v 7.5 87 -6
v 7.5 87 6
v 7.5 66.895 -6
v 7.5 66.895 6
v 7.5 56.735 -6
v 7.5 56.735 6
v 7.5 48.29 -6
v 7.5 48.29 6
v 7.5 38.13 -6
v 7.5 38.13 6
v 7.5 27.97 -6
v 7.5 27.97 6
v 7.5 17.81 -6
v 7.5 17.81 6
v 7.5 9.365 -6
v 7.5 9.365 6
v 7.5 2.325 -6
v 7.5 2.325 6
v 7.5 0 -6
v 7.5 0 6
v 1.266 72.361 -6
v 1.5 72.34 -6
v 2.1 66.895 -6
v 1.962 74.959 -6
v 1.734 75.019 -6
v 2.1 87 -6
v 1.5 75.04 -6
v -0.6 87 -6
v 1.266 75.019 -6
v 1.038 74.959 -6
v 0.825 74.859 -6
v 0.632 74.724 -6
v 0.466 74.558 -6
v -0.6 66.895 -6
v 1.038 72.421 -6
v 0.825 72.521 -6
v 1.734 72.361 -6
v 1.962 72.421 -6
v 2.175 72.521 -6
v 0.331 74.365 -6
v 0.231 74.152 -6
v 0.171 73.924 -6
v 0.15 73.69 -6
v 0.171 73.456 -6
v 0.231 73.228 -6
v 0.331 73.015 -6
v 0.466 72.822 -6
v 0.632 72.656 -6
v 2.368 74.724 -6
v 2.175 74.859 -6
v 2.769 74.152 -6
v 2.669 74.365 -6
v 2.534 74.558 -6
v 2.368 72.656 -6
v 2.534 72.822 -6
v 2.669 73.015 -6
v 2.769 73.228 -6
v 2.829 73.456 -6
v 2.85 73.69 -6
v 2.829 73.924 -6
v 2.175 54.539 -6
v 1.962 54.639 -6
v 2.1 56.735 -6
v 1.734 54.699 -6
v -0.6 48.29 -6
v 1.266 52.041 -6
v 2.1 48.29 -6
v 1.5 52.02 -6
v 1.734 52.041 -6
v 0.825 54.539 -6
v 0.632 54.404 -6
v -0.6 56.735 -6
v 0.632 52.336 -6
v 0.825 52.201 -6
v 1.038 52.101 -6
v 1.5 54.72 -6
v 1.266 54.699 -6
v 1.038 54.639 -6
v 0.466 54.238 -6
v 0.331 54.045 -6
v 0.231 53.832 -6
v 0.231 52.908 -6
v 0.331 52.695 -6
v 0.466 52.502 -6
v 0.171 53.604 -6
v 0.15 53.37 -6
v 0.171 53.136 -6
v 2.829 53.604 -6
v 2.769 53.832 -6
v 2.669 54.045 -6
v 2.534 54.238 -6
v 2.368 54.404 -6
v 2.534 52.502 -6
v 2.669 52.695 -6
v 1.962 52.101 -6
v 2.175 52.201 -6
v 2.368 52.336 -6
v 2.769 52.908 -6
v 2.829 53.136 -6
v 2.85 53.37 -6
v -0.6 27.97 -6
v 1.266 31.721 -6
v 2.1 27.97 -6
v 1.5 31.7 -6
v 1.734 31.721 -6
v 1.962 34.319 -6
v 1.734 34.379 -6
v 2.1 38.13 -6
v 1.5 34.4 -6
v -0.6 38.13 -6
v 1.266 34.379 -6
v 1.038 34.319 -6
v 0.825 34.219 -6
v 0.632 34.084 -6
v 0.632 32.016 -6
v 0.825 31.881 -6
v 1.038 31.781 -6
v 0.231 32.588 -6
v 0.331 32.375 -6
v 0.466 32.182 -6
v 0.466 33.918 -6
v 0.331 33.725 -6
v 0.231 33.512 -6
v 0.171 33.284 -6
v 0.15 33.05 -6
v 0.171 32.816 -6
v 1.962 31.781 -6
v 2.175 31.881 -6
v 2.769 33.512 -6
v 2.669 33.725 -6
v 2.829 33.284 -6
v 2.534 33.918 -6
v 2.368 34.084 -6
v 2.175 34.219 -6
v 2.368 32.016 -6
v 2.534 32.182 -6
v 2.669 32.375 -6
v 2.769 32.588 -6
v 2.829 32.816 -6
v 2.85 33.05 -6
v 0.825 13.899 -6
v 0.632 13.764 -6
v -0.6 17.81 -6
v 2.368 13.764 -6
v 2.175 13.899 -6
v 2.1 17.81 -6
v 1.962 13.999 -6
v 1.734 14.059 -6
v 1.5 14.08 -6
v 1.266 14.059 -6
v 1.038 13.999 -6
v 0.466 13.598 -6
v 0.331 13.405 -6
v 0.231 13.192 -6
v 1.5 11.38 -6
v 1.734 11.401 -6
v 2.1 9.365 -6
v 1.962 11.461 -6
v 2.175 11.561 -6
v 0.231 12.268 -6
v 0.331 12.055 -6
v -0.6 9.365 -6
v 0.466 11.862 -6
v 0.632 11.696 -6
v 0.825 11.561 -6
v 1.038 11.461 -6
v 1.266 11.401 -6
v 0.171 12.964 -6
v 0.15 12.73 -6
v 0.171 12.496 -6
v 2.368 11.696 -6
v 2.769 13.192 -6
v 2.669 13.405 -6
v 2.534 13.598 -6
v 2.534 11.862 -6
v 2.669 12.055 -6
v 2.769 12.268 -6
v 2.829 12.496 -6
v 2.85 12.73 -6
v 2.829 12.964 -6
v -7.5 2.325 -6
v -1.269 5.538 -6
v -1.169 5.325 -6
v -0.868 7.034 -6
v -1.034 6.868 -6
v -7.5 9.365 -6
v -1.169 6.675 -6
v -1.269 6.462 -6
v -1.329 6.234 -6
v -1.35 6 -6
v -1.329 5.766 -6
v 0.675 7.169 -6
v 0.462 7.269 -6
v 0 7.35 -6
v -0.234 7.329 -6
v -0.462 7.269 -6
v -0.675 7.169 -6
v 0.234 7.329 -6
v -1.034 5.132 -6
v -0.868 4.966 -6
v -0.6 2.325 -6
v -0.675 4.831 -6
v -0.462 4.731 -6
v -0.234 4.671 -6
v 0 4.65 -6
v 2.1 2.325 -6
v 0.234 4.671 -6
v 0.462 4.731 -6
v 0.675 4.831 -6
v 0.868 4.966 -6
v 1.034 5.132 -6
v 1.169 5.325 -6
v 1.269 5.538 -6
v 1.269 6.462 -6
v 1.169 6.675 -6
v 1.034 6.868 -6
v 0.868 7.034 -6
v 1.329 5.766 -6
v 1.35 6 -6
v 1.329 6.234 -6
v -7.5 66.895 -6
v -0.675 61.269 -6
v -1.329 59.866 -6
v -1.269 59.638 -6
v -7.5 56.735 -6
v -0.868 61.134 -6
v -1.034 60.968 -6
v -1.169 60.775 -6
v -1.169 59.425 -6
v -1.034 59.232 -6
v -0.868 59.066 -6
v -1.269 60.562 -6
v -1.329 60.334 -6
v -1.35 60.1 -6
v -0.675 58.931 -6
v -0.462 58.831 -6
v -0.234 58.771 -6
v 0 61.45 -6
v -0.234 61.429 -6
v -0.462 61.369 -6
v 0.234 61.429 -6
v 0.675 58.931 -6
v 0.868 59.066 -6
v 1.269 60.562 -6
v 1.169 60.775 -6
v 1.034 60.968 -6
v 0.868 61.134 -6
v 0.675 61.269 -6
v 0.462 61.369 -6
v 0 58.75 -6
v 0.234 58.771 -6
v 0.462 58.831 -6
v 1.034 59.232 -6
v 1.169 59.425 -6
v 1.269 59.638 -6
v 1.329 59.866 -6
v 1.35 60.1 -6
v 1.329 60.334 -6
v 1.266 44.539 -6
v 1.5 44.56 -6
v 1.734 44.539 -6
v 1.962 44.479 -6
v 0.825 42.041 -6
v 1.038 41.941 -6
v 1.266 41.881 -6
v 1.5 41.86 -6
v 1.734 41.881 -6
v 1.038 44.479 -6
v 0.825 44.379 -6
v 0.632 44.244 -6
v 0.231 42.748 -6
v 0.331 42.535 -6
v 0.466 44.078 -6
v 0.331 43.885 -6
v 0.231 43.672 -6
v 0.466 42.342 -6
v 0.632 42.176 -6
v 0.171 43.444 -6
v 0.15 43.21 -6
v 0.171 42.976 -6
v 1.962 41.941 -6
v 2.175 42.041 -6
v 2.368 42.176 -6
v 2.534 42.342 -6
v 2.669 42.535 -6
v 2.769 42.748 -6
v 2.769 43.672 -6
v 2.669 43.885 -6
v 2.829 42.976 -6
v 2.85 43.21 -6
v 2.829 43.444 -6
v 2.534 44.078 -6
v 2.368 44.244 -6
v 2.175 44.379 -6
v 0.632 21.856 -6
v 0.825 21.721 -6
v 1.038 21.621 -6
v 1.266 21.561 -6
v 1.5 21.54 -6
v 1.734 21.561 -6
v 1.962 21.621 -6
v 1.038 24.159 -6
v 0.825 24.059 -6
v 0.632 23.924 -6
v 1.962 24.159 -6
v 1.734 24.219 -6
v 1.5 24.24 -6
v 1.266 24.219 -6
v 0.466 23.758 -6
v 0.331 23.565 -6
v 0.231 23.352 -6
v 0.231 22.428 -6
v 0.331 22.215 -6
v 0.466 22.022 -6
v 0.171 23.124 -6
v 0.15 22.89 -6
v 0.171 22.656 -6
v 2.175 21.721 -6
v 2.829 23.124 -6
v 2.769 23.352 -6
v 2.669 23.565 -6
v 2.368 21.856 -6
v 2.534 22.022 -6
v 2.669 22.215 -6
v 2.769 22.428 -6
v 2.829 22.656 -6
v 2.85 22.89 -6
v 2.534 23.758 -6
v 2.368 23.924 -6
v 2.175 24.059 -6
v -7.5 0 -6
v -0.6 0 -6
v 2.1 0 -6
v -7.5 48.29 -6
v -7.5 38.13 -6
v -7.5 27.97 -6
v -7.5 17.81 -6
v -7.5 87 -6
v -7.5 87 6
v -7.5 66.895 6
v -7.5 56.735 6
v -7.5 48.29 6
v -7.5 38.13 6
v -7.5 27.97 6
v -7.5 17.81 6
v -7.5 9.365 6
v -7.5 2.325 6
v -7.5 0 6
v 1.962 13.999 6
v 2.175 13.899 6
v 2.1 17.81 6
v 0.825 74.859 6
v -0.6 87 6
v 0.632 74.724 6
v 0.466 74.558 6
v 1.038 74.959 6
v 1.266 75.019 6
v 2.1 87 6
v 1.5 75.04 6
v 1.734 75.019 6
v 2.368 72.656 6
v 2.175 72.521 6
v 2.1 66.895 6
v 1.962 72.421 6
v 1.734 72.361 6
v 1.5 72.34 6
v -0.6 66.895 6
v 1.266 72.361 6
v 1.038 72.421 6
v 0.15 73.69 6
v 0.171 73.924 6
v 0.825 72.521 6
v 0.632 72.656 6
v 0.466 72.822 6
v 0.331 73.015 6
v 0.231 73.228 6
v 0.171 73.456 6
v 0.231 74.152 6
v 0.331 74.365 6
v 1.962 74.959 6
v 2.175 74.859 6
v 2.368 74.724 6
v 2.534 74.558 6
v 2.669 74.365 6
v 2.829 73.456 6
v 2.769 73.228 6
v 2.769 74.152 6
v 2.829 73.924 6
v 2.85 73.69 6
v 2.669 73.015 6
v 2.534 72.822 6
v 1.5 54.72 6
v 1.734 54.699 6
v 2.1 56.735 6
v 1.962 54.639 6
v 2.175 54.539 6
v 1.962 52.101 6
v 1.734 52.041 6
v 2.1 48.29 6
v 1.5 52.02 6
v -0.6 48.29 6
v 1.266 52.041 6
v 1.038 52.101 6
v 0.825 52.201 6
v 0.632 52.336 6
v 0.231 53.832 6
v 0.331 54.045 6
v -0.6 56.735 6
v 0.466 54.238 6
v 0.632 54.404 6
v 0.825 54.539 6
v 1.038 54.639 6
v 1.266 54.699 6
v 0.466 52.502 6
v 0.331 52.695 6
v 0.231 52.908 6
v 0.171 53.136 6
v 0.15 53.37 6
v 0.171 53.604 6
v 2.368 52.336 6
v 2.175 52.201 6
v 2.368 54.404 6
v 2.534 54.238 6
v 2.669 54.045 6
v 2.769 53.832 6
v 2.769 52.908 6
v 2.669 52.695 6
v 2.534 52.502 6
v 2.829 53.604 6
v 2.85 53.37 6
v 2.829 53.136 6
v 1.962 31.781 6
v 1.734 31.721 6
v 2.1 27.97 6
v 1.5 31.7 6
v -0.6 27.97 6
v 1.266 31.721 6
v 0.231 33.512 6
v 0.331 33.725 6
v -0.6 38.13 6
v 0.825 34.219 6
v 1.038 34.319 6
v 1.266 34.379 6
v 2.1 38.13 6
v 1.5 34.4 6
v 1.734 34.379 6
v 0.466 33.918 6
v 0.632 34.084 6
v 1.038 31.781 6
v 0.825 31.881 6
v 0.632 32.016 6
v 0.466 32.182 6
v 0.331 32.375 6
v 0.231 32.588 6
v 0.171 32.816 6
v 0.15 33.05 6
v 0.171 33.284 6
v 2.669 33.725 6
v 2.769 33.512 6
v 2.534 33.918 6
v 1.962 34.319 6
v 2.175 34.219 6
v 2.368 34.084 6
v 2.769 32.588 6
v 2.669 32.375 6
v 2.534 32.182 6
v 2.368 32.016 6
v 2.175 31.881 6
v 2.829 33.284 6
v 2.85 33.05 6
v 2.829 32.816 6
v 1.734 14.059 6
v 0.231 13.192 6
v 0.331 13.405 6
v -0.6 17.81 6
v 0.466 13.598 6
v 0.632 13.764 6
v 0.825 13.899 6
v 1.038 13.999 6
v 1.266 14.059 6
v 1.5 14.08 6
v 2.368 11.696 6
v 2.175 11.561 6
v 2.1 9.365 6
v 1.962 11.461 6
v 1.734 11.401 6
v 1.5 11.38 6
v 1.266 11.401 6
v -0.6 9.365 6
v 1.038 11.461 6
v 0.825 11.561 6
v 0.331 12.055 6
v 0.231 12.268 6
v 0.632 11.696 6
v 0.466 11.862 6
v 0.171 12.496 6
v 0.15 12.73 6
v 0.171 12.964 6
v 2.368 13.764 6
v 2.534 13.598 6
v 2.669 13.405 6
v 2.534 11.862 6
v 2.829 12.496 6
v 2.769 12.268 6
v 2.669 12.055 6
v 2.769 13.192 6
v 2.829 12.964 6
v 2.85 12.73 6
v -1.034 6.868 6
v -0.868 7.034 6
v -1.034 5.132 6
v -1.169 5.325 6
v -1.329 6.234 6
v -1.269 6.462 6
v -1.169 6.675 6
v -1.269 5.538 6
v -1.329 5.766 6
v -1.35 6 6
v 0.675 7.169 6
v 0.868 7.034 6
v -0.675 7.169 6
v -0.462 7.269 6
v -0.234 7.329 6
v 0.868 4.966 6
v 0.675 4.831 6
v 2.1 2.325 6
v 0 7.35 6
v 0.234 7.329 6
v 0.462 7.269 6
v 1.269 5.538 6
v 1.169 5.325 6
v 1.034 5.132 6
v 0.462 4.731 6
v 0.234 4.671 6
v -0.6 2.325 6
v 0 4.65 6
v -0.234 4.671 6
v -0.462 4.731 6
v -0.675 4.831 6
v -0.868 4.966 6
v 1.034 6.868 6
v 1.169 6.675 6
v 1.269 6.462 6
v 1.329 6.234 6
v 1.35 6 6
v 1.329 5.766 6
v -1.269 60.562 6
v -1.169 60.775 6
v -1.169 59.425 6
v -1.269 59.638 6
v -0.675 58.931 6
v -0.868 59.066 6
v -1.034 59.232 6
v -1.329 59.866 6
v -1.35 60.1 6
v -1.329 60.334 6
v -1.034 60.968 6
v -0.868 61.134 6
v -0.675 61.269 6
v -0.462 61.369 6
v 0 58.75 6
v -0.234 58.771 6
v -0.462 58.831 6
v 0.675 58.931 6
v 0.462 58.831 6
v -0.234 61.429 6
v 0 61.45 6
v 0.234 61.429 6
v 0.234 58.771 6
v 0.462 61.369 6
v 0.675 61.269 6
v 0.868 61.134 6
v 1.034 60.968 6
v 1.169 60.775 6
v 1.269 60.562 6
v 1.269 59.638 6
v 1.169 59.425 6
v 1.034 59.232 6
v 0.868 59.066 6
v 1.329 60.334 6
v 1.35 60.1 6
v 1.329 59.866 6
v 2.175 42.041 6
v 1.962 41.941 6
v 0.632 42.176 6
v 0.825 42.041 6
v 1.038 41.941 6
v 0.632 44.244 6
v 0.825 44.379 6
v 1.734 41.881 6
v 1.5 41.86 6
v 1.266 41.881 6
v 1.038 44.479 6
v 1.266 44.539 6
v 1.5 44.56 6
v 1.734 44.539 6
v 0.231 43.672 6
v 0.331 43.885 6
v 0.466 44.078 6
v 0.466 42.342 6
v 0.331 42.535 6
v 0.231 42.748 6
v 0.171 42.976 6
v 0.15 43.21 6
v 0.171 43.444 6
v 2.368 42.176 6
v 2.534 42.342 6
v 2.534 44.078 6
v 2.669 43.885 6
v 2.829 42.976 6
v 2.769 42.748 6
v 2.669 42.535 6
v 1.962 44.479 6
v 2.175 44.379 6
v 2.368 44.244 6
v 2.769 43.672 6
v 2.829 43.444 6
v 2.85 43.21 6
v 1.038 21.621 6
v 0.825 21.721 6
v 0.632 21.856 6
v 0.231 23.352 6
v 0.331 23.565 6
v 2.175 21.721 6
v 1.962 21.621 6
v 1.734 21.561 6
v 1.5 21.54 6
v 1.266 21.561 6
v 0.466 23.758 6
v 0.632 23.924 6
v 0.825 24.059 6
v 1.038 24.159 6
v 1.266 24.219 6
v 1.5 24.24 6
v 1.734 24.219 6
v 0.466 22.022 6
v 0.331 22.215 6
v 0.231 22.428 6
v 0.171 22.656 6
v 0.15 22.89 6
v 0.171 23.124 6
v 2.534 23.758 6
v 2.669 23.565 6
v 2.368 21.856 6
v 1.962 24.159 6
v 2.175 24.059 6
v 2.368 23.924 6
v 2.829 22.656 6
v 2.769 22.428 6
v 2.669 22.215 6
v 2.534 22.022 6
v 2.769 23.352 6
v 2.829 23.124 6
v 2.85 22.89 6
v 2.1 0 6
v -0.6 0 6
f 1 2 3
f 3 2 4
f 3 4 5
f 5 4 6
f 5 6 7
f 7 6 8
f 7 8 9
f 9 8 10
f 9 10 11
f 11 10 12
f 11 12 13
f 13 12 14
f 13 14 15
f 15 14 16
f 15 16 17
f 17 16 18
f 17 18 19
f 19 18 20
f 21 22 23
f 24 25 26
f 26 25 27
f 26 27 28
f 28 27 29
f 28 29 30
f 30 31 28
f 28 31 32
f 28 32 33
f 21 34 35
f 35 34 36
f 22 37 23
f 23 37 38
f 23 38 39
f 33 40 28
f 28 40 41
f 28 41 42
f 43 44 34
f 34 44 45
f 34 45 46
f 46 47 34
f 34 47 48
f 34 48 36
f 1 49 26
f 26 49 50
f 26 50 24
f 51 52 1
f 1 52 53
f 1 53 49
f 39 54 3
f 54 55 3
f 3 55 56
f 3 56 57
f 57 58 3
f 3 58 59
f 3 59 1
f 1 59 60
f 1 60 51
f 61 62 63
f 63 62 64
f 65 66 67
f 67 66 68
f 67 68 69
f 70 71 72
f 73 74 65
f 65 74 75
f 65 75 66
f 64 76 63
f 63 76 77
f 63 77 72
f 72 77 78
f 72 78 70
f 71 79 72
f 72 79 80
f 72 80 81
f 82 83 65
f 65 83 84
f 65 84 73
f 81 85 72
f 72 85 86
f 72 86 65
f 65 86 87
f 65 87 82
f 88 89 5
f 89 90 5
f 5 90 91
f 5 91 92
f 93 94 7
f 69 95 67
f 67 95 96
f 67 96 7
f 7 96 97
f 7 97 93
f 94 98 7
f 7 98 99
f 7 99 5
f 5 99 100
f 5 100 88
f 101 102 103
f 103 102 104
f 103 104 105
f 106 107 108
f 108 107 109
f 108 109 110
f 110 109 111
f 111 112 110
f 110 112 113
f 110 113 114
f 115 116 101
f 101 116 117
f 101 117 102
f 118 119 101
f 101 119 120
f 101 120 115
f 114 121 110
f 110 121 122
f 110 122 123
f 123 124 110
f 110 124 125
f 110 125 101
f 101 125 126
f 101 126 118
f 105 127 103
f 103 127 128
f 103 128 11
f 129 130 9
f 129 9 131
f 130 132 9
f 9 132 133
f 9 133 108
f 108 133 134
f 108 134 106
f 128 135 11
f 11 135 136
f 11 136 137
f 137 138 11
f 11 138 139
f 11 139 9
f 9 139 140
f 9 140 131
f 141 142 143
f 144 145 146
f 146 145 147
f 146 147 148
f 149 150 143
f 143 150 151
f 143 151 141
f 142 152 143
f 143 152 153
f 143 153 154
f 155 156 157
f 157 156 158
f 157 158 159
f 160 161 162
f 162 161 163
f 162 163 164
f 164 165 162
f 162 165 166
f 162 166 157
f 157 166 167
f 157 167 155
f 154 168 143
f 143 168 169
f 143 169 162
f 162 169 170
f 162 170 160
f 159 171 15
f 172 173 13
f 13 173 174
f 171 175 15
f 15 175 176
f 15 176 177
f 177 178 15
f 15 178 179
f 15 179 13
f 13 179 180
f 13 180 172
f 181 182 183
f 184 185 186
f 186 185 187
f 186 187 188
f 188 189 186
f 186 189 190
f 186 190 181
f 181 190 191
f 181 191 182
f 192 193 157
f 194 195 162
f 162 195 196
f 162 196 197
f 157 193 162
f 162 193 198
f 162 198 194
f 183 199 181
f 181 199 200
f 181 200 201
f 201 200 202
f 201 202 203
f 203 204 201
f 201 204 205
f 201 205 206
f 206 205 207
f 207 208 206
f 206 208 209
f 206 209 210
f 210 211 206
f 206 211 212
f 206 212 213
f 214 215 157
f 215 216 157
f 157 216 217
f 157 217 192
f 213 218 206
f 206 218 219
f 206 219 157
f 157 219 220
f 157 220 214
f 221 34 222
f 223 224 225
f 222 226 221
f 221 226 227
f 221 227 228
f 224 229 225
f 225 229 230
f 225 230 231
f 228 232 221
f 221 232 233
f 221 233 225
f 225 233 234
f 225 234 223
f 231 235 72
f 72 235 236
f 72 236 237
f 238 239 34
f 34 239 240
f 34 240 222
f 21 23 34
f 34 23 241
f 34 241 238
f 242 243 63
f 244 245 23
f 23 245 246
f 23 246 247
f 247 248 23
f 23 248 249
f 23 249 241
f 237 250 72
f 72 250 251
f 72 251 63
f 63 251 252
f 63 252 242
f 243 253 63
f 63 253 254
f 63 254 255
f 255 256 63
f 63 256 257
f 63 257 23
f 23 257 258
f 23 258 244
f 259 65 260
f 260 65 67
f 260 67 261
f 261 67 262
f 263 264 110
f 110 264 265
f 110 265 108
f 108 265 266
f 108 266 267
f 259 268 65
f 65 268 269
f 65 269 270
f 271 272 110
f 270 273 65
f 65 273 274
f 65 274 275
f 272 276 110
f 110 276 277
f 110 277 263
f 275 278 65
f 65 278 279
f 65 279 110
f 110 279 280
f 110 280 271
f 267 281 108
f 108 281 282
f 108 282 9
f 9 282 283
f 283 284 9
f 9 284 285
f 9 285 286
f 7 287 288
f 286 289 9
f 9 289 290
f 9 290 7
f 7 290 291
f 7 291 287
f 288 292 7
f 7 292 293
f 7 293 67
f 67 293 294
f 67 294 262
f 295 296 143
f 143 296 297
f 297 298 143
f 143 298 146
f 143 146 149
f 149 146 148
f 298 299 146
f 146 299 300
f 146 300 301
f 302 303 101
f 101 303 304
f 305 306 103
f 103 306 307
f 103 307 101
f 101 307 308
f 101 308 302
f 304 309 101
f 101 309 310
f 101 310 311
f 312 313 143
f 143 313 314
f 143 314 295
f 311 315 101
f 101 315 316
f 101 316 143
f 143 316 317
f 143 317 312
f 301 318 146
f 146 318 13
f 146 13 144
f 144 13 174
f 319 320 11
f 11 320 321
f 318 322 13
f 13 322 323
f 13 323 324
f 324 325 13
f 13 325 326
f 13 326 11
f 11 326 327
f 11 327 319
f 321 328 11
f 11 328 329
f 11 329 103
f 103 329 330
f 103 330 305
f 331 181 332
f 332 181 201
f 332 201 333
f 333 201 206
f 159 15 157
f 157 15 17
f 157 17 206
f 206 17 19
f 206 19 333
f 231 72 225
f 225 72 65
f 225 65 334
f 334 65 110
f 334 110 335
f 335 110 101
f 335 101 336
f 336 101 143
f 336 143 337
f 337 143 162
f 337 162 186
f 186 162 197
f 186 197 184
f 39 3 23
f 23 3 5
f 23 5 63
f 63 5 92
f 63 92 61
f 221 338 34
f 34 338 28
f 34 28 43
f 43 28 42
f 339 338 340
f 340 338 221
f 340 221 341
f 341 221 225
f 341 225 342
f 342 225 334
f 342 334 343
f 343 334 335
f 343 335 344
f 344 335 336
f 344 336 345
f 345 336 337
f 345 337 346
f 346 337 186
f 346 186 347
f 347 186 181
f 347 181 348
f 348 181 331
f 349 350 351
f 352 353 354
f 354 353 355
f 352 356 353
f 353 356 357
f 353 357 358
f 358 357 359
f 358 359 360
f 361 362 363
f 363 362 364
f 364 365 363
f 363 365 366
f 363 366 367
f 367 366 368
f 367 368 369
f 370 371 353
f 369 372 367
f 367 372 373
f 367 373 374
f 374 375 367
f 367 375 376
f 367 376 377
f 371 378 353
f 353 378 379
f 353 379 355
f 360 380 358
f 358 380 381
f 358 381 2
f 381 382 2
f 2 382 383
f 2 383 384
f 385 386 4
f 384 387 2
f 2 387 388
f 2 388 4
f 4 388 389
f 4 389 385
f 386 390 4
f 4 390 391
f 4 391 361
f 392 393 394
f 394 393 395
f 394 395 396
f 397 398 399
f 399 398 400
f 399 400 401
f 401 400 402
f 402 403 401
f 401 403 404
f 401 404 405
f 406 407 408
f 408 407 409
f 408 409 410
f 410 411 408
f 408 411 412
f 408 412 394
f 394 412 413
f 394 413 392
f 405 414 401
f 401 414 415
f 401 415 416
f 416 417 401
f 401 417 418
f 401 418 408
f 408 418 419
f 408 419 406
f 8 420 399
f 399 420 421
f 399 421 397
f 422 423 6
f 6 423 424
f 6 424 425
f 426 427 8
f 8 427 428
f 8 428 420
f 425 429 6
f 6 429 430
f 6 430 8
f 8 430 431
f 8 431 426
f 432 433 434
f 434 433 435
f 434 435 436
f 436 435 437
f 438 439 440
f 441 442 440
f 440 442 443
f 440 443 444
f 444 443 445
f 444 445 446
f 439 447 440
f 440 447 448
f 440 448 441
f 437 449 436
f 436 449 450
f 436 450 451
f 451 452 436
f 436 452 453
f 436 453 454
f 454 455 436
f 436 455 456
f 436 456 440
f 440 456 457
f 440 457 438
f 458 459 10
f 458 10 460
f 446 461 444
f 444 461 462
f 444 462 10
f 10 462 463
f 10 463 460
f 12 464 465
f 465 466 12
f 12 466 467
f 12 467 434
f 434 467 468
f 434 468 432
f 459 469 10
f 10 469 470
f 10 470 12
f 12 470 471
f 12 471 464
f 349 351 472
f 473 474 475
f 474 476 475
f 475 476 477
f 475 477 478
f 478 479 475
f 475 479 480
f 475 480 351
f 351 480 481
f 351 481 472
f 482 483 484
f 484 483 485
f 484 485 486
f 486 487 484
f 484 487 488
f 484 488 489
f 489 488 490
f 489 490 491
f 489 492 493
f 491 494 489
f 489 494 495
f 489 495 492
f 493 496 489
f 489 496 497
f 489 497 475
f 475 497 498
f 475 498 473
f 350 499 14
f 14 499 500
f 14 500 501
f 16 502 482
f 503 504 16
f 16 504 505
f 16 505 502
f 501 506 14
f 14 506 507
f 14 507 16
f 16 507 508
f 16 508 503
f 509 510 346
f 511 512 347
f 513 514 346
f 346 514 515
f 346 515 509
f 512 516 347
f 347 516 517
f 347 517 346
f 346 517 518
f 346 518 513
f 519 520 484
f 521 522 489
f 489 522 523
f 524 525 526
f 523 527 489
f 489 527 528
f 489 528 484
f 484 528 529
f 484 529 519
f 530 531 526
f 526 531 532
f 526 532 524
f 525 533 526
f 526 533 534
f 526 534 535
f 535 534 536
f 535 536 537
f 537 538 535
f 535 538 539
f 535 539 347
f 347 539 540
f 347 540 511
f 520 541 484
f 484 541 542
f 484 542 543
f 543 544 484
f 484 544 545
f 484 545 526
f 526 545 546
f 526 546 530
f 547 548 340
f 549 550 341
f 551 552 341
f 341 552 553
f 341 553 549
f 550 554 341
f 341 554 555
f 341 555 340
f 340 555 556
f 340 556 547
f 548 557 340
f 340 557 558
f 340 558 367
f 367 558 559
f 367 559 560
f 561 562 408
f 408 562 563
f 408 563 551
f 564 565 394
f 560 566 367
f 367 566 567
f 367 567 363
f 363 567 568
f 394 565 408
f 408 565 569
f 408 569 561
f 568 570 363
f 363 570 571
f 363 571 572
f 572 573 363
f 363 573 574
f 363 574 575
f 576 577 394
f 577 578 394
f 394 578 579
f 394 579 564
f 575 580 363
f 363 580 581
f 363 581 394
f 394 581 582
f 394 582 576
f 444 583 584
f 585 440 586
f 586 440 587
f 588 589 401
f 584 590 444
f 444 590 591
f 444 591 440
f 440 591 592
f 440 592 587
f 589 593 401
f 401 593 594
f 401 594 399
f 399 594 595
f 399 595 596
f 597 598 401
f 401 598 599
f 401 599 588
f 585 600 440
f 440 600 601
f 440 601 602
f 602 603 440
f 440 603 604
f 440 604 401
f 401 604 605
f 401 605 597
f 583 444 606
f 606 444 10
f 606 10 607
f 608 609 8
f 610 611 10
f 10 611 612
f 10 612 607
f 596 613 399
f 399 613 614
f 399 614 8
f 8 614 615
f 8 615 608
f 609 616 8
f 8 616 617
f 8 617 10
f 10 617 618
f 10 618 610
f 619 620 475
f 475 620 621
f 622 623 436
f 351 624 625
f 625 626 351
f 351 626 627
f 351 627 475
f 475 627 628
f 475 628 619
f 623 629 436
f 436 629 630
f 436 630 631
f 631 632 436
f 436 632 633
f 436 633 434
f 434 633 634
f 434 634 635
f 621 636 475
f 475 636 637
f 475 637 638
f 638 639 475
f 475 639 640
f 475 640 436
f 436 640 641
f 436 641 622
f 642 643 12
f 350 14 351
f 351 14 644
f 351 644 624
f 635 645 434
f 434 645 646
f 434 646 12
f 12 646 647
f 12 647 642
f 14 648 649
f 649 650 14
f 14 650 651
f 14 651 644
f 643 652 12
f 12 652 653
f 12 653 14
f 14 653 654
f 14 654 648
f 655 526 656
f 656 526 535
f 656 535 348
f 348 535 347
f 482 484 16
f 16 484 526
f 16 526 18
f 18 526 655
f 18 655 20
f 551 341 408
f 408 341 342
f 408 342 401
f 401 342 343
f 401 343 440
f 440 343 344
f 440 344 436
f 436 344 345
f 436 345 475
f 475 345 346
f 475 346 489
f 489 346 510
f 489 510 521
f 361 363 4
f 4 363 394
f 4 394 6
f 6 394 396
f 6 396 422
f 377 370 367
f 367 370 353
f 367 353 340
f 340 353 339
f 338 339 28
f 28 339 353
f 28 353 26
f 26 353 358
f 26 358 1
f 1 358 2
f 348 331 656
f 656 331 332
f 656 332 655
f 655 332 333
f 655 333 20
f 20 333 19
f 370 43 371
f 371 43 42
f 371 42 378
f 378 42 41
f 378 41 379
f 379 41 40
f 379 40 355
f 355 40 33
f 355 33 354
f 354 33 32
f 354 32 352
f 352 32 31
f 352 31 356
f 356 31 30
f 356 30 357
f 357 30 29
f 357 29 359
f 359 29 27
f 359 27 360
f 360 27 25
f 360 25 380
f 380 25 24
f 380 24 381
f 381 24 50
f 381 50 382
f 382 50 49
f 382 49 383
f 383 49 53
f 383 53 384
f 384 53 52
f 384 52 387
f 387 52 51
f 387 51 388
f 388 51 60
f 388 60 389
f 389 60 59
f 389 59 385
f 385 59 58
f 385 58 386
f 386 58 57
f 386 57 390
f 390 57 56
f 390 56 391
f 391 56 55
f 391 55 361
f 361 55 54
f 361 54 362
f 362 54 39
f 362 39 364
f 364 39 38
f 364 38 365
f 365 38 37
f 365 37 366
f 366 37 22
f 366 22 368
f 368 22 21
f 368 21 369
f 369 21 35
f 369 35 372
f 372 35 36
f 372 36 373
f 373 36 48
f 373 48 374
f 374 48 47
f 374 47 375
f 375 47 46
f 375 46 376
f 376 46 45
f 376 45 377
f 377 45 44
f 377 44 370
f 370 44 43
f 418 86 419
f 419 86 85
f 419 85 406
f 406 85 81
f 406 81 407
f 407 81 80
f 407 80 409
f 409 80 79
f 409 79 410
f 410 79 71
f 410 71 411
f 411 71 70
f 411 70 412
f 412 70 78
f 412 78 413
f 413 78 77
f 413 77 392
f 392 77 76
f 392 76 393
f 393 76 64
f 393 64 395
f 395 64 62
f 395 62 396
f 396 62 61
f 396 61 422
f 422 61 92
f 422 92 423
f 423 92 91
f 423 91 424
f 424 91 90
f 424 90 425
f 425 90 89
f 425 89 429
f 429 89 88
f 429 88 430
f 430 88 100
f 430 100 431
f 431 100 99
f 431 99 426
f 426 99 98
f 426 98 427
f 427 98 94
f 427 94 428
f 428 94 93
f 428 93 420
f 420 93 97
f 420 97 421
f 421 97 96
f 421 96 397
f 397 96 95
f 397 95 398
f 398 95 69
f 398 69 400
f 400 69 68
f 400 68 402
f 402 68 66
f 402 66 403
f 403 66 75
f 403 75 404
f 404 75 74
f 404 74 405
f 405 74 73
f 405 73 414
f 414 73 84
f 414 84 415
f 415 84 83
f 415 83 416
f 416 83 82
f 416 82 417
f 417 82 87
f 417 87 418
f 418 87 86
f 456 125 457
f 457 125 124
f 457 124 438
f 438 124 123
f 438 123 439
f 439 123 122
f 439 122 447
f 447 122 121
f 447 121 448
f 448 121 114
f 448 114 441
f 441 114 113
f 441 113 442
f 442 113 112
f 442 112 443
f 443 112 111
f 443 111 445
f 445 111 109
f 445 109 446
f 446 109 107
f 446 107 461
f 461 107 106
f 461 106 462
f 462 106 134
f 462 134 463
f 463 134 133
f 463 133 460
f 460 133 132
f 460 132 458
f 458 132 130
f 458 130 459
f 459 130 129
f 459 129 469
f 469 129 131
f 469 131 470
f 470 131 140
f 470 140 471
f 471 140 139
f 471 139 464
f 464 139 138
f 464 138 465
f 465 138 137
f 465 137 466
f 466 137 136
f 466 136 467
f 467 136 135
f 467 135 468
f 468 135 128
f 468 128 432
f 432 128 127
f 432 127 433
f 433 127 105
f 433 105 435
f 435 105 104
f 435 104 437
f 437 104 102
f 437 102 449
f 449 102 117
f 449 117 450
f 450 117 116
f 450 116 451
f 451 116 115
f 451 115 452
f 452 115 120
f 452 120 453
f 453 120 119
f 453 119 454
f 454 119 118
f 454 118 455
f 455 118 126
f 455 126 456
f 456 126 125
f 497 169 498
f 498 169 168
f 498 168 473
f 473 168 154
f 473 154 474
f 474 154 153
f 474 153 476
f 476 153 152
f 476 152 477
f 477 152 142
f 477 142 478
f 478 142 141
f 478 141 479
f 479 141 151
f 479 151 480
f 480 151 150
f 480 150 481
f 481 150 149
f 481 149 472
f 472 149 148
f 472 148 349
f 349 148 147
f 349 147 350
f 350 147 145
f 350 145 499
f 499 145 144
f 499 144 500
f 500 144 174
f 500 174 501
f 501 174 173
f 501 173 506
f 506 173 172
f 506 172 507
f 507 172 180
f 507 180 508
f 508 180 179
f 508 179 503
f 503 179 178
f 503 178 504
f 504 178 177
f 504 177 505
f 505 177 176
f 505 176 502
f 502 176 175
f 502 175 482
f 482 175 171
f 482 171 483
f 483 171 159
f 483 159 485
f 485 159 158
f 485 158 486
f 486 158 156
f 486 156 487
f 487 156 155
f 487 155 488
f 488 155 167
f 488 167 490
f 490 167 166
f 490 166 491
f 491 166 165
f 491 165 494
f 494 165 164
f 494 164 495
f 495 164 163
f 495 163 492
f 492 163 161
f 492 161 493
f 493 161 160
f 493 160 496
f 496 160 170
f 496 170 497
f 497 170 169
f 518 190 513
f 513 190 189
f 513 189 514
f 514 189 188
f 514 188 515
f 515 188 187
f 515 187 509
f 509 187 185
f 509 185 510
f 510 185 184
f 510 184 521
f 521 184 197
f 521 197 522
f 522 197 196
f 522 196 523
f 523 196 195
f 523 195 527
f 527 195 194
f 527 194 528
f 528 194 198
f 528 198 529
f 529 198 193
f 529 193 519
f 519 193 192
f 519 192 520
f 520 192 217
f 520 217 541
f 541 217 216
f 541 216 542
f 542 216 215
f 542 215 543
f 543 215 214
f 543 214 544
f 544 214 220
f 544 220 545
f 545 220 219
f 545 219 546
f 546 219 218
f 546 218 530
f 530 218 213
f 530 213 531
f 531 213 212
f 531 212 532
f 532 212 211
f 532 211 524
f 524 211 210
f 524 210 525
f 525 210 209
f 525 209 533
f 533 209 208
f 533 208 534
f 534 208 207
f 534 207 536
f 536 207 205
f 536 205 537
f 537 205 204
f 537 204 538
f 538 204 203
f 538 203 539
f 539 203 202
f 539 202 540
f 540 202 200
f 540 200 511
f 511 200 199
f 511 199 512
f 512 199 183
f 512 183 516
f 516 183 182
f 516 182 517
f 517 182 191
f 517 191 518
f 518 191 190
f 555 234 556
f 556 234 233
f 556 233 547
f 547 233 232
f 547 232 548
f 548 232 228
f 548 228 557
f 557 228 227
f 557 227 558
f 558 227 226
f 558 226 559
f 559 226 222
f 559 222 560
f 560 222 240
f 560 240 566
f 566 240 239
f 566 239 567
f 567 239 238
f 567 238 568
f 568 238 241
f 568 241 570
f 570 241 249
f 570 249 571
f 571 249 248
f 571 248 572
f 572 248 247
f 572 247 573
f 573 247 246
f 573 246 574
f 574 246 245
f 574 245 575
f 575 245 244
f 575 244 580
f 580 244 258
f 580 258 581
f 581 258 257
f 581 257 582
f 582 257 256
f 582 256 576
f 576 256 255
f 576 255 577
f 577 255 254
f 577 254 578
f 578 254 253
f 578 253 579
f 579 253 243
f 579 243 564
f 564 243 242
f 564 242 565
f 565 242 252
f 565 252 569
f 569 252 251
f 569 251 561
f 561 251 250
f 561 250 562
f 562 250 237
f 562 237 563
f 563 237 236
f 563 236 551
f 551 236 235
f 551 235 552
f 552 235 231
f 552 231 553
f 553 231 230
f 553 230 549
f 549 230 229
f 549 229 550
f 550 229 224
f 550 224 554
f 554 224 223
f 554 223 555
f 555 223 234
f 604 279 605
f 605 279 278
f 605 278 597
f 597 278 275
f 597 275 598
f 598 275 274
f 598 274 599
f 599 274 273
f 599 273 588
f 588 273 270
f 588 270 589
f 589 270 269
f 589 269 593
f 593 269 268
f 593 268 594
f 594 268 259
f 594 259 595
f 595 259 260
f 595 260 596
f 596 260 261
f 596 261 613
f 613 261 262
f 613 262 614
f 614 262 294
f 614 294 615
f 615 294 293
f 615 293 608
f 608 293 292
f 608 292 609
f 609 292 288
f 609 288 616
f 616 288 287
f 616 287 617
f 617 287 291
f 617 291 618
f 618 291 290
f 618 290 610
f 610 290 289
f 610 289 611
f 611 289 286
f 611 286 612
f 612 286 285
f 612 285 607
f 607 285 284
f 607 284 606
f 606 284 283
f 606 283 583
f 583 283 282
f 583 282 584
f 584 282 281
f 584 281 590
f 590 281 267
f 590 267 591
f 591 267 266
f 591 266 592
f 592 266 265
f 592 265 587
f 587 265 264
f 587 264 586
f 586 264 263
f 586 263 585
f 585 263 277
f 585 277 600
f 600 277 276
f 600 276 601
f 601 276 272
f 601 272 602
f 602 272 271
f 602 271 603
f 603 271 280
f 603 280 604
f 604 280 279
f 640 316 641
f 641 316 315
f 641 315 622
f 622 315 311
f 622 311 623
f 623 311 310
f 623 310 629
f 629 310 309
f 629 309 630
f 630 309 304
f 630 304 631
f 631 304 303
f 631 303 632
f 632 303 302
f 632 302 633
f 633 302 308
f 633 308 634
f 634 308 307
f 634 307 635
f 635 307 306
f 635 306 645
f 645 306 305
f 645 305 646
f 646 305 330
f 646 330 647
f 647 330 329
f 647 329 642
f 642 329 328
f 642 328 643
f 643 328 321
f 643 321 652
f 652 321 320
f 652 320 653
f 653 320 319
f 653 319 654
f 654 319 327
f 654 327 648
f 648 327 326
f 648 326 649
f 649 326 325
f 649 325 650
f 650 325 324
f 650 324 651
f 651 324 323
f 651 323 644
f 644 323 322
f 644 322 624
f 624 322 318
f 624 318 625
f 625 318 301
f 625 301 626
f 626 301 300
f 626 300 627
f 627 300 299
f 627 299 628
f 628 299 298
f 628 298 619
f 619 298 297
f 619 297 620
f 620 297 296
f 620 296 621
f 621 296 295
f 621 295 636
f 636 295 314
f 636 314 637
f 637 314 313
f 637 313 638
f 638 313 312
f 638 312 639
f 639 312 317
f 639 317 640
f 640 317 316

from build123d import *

# Parameters (mm, degrees)
SKETCH_1_W      = 15
SKETCH_1_H      = 87
SKETCH_1_R      = 1.35
EXTRUDE_1_DEPTH = 12


with BuildPart() as part:
    # 草圖1 → 填料-伸長1 (new body)
    with BuildSketch(Plane(origin=(0, 0, -6), x_dir=(-1, 0, 0), z_dir=(0, 0, -1))):
        with Locations((0, 43.5)):
            Rectangle(SKETCH_1_W, SKETCH_1_H)
        with Locations((-1.5, 22.89)):
            Circle(SKETCH_1_R, mode=Mode.SUBTRACT)
        with Locations((-1.5, 43.21)):
            Circle(SKETCH_1_R, mode=Mode.SUBTRACT)
        with Locations((0, 60.1)):
            Circle(SKETCH_1_R, mode=Mode.SUBTRACT)
        with Locations((0, 6)):
            Circle(SKETCH_1_R, mode=Mode.SUBTRACT)
        with Locations((-1.5, 12.73)):
            Circle(SKETCH_1_R, mode=Mode.SUBTRACT)
        with Locations((-1.5, 33.05)):
            Circle(SKETCH_1_R, mode=Mode.SUBTRACT)
        with Locations((-1.5, 53.37)):
            Circle(SKETCH_1_R, mode=Mode.SUBTRACT)
        with Locations((-1.5, 73.69)):
            Circle(SKETCH_1_R, mode=Mode.SUBTRACT)
    extrude(amount=-EXTRUDE_1_DEPTH)


solid = part.part
